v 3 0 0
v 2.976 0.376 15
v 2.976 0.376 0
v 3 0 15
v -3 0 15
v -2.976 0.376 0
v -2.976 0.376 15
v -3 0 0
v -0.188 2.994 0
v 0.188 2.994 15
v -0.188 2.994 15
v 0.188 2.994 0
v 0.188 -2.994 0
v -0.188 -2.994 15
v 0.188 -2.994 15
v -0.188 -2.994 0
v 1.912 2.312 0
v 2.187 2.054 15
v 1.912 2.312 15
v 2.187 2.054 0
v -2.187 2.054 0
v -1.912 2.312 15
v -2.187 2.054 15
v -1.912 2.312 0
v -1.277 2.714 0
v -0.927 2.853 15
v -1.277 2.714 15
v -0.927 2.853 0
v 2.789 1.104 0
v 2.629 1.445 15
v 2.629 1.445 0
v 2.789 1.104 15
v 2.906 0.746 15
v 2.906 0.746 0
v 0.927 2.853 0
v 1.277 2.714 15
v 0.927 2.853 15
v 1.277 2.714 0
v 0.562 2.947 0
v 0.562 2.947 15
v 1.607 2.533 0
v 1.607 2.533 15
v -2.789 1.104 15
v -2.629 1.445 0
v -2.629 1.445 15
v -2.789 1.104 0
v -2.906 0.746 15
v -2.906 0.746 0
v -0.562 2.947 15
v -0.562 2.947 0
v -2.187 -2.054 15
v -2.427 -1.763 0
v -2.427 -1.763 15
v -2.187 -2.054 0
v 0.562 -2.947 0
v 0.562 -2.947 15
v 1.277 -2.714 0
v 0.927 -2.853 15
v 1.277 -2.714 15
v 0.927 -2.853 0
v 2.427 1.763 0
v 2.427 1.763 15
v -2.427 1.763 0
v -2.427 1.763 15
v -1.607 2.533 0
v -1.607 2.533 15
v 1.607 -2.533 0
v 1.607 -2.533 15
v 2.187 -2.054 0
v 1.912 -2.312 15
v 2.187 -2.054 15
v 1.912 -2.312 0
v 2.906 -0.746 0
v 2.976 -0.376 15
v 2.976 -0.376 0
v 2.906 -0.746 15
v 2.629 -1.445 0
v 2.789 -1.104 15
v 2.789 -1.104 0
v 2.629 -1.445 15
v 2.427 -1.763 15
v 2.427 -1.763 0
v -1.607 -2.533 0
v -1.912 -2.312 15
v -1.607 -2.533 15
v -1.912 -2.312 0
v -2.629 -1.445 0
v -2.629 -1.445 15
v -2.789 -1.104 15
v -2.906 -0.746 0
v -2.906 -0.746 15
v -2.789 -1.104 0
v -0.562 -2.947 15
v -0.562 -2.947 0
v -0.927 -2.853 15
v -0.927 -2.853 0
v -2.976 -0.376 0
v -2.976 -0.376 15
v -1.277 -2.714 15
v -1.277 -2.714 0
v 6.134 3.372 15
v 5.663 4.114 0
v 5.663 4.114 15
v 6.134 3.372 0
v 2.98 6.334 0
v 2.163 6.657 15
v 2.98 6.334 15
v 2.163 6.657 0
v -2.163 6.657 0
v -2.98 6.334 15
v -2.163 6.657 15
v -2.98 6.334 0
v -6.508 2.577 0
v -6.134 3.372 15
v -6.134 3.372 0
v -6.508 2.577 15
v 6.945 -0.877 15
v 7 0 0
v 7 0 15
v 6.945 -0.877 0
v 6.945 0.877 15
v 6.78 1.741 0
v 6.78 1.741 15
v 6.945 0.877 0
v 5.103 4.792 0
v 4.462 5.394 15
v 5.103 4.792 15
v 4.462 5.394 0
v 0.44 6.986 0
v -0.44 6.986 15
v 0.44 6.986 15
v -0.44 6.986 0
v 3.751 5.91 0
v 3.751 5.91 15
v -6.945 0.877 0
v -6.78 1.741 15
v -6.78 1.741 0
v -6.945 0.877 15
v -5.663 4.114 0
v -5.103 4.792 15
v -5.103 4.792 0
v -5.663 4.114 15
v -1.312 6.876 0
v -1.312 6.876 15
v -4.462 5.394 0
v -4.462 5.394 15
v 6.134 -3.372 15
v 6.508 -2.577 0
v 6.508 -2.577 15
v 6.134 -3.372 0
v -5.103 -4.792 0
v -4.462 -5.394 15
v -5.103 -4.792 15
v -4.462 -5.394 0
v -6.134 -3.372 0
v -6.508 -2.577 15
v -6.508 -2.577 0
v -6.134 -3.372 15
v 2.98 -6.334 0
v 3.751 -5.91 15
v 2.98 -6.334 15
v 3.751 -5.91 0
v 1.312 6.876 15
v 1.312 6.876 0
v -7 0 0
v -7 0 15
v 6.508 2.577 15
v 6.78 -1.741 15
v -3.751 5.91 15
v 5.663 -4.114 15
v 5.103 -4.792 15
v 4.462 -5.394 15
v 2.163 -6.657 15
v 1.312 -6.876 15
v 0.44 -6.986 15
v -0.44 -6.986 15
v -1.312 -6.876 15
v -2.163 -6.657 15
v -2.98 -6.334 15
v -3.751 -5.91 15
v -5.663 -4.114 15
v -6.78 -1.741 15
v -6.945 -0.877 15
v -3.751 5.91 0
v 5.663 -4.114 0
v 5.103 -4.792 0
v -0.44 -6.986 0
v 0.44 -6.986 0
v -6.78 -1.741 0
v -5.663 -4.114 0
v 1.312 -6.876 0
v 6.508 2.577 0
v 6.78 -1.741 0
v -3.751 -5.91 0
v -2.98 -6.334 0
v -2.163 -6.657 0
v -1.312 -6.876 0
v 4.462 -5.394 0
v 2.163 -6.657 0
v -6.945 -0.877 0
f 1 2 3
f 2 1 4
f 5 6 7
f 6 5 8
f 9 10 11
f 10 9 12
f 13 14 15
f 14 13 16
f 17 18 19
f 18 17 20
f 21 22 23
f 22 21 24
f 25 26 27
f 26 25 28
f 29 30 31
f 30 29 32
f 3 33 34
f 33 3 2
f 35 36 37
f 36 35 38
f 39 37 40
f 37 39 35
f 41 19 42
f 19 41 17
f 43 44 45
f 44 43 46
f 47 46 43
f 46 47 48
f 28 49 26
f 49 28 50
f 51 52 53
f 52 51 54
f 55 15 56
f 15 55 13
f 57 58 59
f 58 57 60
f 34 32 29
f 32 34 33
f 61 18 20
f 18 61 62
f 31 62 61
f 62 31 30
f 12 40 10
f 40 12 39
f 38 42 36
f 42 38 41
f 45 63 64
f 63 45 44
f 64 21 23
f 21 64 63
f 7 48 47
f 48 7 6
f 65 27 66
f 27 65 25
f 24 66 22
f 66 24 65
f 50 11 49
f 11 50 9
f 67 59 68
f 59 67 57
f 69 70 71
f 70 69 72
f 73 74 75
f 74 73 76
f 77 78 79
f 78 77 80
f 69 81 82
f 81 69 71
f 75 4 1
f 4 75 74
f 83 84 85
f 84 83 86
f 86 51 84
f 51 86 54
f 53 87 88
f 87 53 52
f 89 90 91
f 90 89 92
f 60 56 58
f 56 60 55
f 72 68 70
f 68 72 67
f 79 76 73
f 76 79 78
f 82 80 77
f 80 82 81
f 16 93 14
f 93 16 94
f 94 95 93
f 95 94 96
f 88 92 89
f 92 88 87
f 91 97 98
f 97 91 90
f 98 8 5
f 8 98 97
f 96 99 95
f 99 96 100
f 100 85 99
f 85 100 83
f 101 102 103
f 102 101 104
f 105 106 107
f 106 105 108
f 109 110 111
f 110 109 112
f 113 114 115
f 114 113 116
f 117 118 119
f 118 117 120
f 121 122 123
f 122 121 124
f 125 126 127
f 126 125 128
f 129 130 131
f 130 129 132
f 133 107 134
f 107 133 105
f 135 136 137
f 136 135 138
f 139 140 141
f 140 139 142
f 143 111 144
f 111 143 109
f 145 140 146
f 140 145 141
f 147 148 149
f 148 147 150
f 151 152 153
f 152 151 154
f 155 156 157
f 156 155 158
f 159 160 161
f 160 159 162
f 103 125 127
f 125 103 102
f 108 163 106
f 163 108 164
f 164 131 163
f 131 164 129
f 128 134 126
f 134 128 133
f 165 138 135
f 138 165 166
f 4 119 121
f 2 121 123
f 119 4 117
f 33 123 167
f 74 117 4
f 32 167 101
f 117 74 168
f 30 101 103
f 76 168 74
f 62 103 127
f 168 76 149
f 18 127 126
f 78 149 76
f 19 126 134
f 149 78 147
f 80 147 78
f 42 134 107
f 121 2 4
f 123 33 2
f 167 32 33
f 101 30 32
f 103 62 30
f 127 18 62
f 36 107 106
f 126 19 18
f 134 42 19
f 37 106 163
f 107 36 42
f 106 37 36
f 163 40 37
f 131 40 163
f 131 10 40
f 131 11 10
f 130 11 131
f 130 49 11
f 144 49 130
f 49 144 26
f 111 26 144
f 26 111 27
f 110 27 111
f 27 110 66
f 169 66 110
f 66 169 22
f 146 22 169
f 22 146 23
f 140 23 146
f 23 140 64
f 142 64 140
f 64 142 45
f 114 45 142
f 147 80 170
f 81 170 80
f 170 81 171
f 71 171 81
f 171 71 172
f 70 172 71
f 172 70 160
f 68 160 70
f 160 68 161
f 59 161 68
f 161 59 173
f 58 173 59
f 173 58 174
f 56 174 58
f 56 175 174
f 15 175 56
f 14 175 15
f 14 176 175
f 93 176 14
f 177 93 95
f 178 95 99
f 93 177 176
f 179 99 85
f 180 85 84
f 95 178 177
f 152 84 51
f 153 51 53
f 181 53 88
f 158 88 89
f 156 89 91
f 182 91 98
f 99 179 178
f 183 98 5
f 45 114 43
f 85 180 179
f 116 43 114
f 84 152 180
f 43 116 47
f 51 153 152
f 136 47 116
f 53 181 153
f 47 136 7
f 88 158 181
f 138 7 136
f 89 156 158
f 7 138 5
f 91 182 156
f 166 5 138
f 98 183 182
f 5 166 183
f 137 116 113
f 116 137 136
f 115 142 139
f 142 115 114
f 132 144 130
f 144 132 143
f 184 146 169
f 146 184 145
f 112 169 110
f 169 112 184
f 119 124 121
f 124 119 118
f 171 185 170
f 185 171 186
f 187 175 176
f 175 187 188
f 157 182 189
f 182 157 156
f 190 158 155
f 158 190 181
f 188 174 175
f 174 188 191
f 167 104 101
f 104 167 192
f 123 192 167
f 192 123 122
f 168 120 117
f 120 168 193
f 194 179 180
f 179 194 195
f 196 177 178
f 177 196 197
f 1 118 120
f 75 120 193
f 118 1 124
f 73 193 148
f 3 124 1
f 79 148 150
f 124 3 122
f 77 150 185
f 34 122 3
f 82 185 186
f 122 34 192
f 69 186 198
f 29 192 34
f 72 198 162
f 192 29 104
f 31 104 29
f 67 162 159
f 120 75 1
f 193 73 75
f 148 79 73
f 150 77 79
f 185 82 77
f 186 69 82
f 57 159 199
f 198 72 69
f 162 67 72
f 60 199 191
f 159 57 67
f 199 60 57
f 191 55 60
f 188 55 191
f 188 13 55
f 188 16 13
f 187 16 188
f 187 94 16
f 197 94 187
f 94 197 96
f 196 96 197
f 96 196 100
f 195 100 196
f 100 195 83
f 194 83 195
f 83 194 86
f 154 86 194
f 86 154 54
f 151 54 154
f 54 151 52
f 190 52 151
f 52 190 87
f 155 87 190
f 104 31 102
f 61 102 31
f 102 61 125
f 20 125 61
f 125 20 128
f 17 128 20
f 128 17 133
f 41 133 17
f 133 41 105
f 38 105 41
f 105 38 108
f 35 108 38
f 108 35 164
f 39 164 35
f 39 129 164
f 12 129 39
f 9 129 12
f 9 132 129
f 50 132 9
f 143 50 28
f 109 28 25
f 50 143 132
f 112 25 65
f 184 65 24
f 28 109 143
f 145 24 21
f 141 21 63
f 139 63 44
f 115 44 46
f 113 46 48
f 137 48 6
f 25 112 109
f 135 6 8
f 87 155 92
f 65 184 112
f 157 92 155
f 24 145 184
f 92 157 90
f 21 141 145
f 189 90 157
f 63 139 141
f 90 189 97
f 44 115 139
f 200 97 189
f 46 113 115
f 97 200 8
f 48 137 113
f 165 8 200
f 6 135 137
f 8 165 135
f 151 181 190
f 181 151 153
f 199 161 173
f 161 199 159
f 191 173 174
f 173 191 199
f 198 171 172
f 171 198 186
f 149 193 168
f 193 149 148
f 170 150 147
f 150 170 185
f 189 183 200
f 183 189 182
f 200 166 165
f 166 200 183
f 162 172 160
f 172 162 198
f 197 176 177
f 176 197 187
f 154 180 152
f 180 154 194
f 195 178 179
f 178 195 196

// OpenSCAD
$fn = 50;


difference() {
	union() {
		cylinder(h = 15, r = 7.0000000000);
	}
	union() {
		translate(v = [0, 0, -100]) {
			cylinder(h = 200, r = 3.0000000000);
		}
		translate(v = [0, 0, -100]) {
			cylinder(h = 200, r = 1.5000000000);
		}
	}
}
